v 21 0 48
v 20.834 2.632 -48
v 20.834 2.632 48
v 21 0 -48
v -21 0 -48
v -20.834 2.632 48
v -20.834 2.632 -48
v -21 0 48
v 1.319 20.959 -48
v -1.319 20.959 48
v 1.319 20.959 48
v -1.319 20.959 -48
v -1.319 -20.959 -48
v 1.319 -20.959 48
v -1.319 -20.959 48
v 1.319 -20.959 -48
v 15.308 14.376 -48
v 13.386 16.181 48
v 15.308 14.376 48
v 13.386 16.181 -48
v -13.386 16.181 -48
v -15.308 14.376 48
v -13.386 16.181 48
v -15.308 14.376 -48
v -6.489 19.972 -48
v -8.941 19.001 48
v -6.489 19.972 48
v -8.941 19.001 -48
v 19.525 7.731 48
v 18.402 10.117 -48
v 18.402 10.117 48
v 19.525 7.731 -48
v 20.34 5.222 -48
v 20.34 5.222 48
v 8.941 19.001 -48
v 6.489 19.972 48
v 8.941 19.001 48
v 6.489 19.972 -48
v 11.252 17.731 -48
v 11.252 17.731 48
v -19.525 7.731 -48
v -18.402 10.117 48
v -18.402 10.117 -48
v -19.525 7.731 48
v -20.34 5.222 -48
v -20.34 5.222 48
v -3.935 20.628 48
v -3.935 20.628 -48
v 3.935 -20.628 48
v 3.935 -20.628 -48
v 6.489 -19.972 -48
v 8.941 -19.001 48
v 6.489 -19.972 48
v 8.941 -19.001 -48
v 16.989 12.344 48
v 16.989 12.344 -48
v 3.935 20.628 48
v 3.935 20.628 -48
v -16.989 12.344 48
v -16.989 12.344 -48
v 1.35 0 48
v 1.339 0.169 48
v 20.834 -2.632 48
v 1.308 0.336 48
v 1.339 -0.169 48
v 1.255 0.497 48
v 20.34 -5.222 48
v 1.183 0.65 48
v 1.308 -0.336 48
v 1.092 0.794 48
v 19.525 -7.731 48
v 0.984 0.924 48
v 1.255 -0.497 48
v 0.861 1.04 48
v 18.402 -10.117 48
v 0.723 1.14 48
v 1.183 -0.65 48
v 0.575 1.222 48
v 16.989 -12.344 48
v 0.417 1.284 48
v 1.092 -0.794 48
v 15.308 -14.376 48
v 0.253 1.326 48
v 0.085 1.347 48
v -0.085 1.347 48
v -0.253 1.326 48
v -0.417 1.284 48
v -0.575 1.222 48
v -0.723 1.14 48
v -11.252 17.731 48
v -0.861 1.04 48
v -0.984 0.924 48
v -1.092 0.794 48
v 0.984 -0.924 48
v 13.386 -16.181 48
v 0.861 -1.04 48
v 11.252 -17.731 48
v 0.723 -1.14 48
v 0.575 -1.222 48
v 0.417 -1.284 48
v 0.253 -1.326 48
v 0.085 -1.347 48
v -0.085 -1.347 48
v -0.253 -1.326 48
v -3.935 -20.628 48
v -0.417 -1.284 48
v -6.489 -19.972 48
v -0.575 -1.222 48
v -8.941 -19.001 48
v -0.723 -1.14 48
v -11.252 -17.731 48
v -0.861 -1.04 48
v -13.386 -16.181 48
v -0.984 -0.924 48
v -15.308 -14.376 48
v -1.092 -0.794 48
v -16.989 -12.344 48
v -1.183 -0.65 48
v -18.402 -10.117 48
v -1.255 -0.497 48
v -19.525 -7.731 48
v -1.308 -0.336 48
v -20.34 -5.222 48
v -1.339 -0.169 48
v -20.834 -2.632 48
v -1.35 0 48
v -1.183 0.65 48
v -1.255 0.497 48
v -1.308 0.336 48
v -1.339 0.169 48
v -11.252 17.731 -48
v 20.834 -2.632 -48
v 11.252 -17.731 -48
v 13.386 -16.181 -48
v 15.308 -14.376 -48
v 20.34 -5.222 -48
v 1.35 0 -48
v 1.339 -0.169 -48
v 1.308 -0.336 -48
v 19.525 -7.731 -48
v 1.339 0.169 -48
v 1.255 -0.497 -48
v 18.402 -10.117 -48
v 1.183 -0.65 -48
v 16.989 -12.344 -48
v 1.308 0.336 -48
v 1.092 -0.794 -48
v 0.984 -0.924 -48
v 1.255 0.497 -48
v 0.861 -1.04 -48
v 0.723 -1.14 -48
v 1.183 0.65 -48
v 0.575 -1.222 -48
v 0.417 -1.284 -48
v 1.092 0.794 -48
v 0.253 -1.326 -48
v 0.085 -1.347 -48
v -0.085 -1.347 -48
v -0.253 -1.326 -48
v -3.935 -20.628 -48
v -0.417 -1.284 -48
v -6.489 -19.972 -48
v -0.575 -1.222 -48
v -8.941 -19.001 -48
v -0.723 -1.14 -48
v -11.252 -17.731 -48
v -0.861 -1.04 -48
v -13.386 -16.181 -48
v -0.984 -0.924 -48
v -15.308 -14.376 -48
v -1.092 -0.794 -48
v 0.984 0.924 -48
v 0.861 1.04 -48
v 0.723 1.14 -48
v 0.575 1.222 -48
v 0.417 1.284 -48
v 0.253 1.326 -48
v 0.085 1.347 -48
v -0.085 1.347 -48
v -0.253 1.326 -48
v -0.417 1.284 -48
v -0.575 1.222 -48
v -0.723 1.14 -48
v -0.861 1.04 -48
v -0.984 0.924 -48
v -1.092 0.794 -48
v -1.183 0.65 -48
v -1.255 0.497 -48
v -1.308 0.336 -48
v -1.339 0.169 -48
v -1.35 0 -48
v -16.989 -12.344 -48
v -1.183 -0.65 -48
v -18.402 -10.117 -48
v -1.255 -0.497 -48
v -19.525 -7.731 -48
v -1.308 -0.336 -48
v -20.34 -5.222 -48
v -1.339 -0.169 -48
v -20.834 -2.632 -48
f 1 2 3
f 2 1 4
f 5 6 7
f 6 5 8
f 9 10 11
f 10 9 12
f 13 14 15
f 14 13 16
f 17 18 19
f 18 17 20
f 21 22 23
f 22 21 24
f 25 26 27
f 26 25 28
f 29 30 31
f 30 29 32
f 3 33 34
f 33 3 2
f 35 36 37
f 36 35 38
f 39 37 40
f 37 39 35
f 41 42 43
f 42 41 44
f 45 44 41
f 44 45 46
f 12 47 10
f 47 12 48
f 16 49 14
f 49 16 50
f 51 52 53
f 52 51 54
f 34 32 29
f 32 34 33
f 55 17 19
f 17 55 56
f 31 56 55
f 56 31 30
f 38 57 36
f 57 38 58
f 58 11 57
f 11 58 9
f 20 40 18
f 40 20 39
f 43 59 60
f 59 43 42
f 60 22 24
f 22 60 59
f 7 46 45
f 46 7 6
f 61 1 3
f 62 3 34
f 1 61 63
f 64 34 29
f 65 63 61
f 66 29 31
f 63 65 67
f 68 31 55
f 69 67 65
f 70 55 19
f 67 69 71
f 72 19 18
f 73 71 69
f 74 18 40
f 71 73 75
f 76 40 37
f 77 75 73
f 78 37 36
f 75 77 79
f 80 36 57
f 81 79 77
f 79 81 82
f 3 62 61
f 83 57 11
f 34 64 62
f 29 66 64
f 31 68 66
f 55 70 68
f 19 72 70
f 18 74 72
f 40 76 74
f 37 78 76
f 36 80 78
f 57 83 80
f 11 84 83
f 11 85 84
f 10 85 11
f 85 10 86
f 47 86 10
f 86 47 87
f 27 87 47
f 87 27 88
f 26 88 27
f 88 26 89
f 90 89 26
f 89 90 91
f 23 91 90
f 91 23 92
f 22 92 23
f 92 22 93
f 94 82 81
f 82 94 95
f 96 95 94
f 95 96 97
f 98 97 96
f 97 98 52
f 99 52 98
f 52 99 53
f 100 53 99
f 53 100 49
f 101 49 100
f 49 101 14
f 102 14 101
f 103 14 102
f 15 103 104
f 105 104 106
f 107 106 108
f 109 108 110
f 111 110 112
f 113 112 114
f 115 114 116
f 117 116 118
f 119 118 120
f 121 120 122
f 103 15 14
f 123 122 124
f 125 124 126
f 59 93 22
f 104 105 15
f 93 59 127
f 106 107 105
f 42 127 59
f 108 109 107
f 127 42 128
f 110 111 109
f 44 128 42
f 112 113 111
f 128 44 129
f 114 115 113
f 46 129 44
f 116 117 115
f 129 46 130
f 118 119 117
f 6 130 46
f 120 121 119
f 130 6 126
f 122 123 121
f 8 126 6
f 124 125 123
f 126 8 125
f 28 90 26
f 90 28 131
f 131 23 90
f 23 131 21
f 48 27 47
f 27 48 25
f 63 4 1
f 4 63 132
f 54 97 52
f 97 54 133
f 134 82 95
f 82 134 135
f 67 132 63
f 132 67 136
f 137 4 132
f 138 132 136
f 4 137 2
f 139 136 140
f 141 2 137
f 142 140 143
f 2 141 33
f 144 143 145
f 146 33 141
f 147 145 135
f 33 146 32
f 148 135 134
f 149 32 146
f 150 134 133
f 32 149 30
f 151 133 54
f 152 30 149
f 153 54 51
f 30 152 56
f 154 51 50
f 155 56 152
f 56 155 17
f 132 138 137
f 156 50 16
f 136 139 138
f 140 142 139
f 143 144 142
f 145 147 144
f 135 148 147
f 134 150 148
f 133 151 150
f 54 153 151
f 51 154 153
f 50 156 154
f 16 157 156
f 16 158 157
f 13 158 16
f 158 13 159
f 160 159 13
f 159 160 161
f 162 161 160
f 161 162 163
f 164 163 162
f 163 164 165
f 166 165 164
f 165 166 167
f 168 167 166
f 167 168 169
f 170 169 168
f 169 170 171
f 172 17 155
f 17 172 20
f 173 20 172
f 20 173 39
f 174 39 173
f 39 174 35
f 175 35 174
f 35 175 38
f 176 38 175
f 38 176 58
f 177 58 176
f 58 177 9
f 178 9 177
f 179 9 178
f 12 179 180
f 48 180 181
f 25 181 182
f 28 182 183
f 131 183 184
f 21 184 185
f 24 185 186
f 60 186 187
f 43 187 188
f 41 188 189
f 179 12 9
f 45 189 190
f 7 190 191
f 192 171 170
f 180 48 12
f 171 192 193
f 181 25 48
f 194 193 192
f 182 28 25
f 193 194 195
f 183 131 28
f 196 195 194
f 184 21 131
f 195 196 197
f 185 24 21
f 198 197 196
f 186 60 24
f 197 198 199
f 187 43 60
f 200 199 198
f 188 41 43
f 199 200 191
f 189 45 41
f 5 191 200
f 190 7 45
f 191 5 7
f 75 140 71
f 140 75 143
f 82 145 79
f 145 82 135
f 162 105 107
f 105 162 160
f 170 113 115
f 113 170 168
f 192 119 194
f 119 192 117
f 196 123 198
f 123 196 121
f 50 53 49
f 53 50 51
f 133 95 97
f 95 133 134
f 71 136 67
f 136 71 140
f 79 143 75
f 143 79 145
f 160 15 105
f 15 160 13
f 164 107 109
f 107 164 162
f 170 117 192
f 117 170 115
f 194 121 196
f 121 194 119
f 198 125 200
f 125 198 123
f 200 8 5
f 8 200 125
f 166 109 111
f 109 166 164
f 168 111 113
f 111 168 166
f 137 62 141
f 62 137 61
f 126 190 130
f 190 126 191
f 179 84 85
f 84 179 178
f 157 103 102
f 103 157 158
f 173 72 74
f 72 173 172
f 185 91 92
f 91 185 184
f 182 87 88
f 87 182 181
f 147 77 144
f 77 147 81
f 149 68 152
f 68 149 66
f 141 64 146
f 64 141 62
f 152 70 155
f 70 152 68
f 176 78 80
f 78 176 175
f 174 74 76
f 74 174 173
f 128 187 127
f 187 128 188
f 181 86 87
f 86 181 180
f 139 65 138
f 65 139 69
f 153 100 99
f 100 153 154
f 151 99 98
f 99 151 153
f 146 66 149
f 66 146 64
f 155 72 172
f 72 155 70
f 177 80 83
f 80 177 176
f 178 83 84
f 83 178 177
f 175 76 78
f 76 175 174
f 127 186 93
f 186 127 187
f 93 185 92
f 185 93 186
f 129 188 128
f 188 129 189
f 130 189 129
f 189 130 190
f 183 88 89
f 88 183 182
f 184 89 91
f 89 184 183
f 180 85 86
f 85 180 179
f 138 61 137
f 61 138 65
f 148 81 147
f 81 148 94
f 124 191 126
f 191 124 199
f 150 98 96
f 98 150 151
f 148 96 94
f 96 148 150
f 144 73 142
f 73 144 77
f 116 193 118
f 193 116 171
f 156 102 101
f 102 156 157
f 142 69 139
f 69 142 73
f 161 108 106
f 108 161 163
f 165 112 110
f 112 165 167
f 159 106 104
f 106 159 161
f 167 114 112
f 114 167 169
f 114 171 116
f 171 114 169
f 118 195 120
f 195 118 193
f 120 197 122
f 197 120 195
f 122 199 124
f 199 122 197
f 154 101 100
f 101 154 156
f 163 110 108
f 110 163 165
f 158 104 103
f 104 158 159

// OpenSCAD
$fn = 50;


difference() {
	union() {
		translate(v = [0, 0, -48.0000000000]) {
			cylinder(h = 96, r = 21.0000000000);
		}
	}
	union() {
		translate(v = [0, 0, -100.0000000000]) {
			cylinder(h = 200, r = 1.3500000000);
		}
	}
}
